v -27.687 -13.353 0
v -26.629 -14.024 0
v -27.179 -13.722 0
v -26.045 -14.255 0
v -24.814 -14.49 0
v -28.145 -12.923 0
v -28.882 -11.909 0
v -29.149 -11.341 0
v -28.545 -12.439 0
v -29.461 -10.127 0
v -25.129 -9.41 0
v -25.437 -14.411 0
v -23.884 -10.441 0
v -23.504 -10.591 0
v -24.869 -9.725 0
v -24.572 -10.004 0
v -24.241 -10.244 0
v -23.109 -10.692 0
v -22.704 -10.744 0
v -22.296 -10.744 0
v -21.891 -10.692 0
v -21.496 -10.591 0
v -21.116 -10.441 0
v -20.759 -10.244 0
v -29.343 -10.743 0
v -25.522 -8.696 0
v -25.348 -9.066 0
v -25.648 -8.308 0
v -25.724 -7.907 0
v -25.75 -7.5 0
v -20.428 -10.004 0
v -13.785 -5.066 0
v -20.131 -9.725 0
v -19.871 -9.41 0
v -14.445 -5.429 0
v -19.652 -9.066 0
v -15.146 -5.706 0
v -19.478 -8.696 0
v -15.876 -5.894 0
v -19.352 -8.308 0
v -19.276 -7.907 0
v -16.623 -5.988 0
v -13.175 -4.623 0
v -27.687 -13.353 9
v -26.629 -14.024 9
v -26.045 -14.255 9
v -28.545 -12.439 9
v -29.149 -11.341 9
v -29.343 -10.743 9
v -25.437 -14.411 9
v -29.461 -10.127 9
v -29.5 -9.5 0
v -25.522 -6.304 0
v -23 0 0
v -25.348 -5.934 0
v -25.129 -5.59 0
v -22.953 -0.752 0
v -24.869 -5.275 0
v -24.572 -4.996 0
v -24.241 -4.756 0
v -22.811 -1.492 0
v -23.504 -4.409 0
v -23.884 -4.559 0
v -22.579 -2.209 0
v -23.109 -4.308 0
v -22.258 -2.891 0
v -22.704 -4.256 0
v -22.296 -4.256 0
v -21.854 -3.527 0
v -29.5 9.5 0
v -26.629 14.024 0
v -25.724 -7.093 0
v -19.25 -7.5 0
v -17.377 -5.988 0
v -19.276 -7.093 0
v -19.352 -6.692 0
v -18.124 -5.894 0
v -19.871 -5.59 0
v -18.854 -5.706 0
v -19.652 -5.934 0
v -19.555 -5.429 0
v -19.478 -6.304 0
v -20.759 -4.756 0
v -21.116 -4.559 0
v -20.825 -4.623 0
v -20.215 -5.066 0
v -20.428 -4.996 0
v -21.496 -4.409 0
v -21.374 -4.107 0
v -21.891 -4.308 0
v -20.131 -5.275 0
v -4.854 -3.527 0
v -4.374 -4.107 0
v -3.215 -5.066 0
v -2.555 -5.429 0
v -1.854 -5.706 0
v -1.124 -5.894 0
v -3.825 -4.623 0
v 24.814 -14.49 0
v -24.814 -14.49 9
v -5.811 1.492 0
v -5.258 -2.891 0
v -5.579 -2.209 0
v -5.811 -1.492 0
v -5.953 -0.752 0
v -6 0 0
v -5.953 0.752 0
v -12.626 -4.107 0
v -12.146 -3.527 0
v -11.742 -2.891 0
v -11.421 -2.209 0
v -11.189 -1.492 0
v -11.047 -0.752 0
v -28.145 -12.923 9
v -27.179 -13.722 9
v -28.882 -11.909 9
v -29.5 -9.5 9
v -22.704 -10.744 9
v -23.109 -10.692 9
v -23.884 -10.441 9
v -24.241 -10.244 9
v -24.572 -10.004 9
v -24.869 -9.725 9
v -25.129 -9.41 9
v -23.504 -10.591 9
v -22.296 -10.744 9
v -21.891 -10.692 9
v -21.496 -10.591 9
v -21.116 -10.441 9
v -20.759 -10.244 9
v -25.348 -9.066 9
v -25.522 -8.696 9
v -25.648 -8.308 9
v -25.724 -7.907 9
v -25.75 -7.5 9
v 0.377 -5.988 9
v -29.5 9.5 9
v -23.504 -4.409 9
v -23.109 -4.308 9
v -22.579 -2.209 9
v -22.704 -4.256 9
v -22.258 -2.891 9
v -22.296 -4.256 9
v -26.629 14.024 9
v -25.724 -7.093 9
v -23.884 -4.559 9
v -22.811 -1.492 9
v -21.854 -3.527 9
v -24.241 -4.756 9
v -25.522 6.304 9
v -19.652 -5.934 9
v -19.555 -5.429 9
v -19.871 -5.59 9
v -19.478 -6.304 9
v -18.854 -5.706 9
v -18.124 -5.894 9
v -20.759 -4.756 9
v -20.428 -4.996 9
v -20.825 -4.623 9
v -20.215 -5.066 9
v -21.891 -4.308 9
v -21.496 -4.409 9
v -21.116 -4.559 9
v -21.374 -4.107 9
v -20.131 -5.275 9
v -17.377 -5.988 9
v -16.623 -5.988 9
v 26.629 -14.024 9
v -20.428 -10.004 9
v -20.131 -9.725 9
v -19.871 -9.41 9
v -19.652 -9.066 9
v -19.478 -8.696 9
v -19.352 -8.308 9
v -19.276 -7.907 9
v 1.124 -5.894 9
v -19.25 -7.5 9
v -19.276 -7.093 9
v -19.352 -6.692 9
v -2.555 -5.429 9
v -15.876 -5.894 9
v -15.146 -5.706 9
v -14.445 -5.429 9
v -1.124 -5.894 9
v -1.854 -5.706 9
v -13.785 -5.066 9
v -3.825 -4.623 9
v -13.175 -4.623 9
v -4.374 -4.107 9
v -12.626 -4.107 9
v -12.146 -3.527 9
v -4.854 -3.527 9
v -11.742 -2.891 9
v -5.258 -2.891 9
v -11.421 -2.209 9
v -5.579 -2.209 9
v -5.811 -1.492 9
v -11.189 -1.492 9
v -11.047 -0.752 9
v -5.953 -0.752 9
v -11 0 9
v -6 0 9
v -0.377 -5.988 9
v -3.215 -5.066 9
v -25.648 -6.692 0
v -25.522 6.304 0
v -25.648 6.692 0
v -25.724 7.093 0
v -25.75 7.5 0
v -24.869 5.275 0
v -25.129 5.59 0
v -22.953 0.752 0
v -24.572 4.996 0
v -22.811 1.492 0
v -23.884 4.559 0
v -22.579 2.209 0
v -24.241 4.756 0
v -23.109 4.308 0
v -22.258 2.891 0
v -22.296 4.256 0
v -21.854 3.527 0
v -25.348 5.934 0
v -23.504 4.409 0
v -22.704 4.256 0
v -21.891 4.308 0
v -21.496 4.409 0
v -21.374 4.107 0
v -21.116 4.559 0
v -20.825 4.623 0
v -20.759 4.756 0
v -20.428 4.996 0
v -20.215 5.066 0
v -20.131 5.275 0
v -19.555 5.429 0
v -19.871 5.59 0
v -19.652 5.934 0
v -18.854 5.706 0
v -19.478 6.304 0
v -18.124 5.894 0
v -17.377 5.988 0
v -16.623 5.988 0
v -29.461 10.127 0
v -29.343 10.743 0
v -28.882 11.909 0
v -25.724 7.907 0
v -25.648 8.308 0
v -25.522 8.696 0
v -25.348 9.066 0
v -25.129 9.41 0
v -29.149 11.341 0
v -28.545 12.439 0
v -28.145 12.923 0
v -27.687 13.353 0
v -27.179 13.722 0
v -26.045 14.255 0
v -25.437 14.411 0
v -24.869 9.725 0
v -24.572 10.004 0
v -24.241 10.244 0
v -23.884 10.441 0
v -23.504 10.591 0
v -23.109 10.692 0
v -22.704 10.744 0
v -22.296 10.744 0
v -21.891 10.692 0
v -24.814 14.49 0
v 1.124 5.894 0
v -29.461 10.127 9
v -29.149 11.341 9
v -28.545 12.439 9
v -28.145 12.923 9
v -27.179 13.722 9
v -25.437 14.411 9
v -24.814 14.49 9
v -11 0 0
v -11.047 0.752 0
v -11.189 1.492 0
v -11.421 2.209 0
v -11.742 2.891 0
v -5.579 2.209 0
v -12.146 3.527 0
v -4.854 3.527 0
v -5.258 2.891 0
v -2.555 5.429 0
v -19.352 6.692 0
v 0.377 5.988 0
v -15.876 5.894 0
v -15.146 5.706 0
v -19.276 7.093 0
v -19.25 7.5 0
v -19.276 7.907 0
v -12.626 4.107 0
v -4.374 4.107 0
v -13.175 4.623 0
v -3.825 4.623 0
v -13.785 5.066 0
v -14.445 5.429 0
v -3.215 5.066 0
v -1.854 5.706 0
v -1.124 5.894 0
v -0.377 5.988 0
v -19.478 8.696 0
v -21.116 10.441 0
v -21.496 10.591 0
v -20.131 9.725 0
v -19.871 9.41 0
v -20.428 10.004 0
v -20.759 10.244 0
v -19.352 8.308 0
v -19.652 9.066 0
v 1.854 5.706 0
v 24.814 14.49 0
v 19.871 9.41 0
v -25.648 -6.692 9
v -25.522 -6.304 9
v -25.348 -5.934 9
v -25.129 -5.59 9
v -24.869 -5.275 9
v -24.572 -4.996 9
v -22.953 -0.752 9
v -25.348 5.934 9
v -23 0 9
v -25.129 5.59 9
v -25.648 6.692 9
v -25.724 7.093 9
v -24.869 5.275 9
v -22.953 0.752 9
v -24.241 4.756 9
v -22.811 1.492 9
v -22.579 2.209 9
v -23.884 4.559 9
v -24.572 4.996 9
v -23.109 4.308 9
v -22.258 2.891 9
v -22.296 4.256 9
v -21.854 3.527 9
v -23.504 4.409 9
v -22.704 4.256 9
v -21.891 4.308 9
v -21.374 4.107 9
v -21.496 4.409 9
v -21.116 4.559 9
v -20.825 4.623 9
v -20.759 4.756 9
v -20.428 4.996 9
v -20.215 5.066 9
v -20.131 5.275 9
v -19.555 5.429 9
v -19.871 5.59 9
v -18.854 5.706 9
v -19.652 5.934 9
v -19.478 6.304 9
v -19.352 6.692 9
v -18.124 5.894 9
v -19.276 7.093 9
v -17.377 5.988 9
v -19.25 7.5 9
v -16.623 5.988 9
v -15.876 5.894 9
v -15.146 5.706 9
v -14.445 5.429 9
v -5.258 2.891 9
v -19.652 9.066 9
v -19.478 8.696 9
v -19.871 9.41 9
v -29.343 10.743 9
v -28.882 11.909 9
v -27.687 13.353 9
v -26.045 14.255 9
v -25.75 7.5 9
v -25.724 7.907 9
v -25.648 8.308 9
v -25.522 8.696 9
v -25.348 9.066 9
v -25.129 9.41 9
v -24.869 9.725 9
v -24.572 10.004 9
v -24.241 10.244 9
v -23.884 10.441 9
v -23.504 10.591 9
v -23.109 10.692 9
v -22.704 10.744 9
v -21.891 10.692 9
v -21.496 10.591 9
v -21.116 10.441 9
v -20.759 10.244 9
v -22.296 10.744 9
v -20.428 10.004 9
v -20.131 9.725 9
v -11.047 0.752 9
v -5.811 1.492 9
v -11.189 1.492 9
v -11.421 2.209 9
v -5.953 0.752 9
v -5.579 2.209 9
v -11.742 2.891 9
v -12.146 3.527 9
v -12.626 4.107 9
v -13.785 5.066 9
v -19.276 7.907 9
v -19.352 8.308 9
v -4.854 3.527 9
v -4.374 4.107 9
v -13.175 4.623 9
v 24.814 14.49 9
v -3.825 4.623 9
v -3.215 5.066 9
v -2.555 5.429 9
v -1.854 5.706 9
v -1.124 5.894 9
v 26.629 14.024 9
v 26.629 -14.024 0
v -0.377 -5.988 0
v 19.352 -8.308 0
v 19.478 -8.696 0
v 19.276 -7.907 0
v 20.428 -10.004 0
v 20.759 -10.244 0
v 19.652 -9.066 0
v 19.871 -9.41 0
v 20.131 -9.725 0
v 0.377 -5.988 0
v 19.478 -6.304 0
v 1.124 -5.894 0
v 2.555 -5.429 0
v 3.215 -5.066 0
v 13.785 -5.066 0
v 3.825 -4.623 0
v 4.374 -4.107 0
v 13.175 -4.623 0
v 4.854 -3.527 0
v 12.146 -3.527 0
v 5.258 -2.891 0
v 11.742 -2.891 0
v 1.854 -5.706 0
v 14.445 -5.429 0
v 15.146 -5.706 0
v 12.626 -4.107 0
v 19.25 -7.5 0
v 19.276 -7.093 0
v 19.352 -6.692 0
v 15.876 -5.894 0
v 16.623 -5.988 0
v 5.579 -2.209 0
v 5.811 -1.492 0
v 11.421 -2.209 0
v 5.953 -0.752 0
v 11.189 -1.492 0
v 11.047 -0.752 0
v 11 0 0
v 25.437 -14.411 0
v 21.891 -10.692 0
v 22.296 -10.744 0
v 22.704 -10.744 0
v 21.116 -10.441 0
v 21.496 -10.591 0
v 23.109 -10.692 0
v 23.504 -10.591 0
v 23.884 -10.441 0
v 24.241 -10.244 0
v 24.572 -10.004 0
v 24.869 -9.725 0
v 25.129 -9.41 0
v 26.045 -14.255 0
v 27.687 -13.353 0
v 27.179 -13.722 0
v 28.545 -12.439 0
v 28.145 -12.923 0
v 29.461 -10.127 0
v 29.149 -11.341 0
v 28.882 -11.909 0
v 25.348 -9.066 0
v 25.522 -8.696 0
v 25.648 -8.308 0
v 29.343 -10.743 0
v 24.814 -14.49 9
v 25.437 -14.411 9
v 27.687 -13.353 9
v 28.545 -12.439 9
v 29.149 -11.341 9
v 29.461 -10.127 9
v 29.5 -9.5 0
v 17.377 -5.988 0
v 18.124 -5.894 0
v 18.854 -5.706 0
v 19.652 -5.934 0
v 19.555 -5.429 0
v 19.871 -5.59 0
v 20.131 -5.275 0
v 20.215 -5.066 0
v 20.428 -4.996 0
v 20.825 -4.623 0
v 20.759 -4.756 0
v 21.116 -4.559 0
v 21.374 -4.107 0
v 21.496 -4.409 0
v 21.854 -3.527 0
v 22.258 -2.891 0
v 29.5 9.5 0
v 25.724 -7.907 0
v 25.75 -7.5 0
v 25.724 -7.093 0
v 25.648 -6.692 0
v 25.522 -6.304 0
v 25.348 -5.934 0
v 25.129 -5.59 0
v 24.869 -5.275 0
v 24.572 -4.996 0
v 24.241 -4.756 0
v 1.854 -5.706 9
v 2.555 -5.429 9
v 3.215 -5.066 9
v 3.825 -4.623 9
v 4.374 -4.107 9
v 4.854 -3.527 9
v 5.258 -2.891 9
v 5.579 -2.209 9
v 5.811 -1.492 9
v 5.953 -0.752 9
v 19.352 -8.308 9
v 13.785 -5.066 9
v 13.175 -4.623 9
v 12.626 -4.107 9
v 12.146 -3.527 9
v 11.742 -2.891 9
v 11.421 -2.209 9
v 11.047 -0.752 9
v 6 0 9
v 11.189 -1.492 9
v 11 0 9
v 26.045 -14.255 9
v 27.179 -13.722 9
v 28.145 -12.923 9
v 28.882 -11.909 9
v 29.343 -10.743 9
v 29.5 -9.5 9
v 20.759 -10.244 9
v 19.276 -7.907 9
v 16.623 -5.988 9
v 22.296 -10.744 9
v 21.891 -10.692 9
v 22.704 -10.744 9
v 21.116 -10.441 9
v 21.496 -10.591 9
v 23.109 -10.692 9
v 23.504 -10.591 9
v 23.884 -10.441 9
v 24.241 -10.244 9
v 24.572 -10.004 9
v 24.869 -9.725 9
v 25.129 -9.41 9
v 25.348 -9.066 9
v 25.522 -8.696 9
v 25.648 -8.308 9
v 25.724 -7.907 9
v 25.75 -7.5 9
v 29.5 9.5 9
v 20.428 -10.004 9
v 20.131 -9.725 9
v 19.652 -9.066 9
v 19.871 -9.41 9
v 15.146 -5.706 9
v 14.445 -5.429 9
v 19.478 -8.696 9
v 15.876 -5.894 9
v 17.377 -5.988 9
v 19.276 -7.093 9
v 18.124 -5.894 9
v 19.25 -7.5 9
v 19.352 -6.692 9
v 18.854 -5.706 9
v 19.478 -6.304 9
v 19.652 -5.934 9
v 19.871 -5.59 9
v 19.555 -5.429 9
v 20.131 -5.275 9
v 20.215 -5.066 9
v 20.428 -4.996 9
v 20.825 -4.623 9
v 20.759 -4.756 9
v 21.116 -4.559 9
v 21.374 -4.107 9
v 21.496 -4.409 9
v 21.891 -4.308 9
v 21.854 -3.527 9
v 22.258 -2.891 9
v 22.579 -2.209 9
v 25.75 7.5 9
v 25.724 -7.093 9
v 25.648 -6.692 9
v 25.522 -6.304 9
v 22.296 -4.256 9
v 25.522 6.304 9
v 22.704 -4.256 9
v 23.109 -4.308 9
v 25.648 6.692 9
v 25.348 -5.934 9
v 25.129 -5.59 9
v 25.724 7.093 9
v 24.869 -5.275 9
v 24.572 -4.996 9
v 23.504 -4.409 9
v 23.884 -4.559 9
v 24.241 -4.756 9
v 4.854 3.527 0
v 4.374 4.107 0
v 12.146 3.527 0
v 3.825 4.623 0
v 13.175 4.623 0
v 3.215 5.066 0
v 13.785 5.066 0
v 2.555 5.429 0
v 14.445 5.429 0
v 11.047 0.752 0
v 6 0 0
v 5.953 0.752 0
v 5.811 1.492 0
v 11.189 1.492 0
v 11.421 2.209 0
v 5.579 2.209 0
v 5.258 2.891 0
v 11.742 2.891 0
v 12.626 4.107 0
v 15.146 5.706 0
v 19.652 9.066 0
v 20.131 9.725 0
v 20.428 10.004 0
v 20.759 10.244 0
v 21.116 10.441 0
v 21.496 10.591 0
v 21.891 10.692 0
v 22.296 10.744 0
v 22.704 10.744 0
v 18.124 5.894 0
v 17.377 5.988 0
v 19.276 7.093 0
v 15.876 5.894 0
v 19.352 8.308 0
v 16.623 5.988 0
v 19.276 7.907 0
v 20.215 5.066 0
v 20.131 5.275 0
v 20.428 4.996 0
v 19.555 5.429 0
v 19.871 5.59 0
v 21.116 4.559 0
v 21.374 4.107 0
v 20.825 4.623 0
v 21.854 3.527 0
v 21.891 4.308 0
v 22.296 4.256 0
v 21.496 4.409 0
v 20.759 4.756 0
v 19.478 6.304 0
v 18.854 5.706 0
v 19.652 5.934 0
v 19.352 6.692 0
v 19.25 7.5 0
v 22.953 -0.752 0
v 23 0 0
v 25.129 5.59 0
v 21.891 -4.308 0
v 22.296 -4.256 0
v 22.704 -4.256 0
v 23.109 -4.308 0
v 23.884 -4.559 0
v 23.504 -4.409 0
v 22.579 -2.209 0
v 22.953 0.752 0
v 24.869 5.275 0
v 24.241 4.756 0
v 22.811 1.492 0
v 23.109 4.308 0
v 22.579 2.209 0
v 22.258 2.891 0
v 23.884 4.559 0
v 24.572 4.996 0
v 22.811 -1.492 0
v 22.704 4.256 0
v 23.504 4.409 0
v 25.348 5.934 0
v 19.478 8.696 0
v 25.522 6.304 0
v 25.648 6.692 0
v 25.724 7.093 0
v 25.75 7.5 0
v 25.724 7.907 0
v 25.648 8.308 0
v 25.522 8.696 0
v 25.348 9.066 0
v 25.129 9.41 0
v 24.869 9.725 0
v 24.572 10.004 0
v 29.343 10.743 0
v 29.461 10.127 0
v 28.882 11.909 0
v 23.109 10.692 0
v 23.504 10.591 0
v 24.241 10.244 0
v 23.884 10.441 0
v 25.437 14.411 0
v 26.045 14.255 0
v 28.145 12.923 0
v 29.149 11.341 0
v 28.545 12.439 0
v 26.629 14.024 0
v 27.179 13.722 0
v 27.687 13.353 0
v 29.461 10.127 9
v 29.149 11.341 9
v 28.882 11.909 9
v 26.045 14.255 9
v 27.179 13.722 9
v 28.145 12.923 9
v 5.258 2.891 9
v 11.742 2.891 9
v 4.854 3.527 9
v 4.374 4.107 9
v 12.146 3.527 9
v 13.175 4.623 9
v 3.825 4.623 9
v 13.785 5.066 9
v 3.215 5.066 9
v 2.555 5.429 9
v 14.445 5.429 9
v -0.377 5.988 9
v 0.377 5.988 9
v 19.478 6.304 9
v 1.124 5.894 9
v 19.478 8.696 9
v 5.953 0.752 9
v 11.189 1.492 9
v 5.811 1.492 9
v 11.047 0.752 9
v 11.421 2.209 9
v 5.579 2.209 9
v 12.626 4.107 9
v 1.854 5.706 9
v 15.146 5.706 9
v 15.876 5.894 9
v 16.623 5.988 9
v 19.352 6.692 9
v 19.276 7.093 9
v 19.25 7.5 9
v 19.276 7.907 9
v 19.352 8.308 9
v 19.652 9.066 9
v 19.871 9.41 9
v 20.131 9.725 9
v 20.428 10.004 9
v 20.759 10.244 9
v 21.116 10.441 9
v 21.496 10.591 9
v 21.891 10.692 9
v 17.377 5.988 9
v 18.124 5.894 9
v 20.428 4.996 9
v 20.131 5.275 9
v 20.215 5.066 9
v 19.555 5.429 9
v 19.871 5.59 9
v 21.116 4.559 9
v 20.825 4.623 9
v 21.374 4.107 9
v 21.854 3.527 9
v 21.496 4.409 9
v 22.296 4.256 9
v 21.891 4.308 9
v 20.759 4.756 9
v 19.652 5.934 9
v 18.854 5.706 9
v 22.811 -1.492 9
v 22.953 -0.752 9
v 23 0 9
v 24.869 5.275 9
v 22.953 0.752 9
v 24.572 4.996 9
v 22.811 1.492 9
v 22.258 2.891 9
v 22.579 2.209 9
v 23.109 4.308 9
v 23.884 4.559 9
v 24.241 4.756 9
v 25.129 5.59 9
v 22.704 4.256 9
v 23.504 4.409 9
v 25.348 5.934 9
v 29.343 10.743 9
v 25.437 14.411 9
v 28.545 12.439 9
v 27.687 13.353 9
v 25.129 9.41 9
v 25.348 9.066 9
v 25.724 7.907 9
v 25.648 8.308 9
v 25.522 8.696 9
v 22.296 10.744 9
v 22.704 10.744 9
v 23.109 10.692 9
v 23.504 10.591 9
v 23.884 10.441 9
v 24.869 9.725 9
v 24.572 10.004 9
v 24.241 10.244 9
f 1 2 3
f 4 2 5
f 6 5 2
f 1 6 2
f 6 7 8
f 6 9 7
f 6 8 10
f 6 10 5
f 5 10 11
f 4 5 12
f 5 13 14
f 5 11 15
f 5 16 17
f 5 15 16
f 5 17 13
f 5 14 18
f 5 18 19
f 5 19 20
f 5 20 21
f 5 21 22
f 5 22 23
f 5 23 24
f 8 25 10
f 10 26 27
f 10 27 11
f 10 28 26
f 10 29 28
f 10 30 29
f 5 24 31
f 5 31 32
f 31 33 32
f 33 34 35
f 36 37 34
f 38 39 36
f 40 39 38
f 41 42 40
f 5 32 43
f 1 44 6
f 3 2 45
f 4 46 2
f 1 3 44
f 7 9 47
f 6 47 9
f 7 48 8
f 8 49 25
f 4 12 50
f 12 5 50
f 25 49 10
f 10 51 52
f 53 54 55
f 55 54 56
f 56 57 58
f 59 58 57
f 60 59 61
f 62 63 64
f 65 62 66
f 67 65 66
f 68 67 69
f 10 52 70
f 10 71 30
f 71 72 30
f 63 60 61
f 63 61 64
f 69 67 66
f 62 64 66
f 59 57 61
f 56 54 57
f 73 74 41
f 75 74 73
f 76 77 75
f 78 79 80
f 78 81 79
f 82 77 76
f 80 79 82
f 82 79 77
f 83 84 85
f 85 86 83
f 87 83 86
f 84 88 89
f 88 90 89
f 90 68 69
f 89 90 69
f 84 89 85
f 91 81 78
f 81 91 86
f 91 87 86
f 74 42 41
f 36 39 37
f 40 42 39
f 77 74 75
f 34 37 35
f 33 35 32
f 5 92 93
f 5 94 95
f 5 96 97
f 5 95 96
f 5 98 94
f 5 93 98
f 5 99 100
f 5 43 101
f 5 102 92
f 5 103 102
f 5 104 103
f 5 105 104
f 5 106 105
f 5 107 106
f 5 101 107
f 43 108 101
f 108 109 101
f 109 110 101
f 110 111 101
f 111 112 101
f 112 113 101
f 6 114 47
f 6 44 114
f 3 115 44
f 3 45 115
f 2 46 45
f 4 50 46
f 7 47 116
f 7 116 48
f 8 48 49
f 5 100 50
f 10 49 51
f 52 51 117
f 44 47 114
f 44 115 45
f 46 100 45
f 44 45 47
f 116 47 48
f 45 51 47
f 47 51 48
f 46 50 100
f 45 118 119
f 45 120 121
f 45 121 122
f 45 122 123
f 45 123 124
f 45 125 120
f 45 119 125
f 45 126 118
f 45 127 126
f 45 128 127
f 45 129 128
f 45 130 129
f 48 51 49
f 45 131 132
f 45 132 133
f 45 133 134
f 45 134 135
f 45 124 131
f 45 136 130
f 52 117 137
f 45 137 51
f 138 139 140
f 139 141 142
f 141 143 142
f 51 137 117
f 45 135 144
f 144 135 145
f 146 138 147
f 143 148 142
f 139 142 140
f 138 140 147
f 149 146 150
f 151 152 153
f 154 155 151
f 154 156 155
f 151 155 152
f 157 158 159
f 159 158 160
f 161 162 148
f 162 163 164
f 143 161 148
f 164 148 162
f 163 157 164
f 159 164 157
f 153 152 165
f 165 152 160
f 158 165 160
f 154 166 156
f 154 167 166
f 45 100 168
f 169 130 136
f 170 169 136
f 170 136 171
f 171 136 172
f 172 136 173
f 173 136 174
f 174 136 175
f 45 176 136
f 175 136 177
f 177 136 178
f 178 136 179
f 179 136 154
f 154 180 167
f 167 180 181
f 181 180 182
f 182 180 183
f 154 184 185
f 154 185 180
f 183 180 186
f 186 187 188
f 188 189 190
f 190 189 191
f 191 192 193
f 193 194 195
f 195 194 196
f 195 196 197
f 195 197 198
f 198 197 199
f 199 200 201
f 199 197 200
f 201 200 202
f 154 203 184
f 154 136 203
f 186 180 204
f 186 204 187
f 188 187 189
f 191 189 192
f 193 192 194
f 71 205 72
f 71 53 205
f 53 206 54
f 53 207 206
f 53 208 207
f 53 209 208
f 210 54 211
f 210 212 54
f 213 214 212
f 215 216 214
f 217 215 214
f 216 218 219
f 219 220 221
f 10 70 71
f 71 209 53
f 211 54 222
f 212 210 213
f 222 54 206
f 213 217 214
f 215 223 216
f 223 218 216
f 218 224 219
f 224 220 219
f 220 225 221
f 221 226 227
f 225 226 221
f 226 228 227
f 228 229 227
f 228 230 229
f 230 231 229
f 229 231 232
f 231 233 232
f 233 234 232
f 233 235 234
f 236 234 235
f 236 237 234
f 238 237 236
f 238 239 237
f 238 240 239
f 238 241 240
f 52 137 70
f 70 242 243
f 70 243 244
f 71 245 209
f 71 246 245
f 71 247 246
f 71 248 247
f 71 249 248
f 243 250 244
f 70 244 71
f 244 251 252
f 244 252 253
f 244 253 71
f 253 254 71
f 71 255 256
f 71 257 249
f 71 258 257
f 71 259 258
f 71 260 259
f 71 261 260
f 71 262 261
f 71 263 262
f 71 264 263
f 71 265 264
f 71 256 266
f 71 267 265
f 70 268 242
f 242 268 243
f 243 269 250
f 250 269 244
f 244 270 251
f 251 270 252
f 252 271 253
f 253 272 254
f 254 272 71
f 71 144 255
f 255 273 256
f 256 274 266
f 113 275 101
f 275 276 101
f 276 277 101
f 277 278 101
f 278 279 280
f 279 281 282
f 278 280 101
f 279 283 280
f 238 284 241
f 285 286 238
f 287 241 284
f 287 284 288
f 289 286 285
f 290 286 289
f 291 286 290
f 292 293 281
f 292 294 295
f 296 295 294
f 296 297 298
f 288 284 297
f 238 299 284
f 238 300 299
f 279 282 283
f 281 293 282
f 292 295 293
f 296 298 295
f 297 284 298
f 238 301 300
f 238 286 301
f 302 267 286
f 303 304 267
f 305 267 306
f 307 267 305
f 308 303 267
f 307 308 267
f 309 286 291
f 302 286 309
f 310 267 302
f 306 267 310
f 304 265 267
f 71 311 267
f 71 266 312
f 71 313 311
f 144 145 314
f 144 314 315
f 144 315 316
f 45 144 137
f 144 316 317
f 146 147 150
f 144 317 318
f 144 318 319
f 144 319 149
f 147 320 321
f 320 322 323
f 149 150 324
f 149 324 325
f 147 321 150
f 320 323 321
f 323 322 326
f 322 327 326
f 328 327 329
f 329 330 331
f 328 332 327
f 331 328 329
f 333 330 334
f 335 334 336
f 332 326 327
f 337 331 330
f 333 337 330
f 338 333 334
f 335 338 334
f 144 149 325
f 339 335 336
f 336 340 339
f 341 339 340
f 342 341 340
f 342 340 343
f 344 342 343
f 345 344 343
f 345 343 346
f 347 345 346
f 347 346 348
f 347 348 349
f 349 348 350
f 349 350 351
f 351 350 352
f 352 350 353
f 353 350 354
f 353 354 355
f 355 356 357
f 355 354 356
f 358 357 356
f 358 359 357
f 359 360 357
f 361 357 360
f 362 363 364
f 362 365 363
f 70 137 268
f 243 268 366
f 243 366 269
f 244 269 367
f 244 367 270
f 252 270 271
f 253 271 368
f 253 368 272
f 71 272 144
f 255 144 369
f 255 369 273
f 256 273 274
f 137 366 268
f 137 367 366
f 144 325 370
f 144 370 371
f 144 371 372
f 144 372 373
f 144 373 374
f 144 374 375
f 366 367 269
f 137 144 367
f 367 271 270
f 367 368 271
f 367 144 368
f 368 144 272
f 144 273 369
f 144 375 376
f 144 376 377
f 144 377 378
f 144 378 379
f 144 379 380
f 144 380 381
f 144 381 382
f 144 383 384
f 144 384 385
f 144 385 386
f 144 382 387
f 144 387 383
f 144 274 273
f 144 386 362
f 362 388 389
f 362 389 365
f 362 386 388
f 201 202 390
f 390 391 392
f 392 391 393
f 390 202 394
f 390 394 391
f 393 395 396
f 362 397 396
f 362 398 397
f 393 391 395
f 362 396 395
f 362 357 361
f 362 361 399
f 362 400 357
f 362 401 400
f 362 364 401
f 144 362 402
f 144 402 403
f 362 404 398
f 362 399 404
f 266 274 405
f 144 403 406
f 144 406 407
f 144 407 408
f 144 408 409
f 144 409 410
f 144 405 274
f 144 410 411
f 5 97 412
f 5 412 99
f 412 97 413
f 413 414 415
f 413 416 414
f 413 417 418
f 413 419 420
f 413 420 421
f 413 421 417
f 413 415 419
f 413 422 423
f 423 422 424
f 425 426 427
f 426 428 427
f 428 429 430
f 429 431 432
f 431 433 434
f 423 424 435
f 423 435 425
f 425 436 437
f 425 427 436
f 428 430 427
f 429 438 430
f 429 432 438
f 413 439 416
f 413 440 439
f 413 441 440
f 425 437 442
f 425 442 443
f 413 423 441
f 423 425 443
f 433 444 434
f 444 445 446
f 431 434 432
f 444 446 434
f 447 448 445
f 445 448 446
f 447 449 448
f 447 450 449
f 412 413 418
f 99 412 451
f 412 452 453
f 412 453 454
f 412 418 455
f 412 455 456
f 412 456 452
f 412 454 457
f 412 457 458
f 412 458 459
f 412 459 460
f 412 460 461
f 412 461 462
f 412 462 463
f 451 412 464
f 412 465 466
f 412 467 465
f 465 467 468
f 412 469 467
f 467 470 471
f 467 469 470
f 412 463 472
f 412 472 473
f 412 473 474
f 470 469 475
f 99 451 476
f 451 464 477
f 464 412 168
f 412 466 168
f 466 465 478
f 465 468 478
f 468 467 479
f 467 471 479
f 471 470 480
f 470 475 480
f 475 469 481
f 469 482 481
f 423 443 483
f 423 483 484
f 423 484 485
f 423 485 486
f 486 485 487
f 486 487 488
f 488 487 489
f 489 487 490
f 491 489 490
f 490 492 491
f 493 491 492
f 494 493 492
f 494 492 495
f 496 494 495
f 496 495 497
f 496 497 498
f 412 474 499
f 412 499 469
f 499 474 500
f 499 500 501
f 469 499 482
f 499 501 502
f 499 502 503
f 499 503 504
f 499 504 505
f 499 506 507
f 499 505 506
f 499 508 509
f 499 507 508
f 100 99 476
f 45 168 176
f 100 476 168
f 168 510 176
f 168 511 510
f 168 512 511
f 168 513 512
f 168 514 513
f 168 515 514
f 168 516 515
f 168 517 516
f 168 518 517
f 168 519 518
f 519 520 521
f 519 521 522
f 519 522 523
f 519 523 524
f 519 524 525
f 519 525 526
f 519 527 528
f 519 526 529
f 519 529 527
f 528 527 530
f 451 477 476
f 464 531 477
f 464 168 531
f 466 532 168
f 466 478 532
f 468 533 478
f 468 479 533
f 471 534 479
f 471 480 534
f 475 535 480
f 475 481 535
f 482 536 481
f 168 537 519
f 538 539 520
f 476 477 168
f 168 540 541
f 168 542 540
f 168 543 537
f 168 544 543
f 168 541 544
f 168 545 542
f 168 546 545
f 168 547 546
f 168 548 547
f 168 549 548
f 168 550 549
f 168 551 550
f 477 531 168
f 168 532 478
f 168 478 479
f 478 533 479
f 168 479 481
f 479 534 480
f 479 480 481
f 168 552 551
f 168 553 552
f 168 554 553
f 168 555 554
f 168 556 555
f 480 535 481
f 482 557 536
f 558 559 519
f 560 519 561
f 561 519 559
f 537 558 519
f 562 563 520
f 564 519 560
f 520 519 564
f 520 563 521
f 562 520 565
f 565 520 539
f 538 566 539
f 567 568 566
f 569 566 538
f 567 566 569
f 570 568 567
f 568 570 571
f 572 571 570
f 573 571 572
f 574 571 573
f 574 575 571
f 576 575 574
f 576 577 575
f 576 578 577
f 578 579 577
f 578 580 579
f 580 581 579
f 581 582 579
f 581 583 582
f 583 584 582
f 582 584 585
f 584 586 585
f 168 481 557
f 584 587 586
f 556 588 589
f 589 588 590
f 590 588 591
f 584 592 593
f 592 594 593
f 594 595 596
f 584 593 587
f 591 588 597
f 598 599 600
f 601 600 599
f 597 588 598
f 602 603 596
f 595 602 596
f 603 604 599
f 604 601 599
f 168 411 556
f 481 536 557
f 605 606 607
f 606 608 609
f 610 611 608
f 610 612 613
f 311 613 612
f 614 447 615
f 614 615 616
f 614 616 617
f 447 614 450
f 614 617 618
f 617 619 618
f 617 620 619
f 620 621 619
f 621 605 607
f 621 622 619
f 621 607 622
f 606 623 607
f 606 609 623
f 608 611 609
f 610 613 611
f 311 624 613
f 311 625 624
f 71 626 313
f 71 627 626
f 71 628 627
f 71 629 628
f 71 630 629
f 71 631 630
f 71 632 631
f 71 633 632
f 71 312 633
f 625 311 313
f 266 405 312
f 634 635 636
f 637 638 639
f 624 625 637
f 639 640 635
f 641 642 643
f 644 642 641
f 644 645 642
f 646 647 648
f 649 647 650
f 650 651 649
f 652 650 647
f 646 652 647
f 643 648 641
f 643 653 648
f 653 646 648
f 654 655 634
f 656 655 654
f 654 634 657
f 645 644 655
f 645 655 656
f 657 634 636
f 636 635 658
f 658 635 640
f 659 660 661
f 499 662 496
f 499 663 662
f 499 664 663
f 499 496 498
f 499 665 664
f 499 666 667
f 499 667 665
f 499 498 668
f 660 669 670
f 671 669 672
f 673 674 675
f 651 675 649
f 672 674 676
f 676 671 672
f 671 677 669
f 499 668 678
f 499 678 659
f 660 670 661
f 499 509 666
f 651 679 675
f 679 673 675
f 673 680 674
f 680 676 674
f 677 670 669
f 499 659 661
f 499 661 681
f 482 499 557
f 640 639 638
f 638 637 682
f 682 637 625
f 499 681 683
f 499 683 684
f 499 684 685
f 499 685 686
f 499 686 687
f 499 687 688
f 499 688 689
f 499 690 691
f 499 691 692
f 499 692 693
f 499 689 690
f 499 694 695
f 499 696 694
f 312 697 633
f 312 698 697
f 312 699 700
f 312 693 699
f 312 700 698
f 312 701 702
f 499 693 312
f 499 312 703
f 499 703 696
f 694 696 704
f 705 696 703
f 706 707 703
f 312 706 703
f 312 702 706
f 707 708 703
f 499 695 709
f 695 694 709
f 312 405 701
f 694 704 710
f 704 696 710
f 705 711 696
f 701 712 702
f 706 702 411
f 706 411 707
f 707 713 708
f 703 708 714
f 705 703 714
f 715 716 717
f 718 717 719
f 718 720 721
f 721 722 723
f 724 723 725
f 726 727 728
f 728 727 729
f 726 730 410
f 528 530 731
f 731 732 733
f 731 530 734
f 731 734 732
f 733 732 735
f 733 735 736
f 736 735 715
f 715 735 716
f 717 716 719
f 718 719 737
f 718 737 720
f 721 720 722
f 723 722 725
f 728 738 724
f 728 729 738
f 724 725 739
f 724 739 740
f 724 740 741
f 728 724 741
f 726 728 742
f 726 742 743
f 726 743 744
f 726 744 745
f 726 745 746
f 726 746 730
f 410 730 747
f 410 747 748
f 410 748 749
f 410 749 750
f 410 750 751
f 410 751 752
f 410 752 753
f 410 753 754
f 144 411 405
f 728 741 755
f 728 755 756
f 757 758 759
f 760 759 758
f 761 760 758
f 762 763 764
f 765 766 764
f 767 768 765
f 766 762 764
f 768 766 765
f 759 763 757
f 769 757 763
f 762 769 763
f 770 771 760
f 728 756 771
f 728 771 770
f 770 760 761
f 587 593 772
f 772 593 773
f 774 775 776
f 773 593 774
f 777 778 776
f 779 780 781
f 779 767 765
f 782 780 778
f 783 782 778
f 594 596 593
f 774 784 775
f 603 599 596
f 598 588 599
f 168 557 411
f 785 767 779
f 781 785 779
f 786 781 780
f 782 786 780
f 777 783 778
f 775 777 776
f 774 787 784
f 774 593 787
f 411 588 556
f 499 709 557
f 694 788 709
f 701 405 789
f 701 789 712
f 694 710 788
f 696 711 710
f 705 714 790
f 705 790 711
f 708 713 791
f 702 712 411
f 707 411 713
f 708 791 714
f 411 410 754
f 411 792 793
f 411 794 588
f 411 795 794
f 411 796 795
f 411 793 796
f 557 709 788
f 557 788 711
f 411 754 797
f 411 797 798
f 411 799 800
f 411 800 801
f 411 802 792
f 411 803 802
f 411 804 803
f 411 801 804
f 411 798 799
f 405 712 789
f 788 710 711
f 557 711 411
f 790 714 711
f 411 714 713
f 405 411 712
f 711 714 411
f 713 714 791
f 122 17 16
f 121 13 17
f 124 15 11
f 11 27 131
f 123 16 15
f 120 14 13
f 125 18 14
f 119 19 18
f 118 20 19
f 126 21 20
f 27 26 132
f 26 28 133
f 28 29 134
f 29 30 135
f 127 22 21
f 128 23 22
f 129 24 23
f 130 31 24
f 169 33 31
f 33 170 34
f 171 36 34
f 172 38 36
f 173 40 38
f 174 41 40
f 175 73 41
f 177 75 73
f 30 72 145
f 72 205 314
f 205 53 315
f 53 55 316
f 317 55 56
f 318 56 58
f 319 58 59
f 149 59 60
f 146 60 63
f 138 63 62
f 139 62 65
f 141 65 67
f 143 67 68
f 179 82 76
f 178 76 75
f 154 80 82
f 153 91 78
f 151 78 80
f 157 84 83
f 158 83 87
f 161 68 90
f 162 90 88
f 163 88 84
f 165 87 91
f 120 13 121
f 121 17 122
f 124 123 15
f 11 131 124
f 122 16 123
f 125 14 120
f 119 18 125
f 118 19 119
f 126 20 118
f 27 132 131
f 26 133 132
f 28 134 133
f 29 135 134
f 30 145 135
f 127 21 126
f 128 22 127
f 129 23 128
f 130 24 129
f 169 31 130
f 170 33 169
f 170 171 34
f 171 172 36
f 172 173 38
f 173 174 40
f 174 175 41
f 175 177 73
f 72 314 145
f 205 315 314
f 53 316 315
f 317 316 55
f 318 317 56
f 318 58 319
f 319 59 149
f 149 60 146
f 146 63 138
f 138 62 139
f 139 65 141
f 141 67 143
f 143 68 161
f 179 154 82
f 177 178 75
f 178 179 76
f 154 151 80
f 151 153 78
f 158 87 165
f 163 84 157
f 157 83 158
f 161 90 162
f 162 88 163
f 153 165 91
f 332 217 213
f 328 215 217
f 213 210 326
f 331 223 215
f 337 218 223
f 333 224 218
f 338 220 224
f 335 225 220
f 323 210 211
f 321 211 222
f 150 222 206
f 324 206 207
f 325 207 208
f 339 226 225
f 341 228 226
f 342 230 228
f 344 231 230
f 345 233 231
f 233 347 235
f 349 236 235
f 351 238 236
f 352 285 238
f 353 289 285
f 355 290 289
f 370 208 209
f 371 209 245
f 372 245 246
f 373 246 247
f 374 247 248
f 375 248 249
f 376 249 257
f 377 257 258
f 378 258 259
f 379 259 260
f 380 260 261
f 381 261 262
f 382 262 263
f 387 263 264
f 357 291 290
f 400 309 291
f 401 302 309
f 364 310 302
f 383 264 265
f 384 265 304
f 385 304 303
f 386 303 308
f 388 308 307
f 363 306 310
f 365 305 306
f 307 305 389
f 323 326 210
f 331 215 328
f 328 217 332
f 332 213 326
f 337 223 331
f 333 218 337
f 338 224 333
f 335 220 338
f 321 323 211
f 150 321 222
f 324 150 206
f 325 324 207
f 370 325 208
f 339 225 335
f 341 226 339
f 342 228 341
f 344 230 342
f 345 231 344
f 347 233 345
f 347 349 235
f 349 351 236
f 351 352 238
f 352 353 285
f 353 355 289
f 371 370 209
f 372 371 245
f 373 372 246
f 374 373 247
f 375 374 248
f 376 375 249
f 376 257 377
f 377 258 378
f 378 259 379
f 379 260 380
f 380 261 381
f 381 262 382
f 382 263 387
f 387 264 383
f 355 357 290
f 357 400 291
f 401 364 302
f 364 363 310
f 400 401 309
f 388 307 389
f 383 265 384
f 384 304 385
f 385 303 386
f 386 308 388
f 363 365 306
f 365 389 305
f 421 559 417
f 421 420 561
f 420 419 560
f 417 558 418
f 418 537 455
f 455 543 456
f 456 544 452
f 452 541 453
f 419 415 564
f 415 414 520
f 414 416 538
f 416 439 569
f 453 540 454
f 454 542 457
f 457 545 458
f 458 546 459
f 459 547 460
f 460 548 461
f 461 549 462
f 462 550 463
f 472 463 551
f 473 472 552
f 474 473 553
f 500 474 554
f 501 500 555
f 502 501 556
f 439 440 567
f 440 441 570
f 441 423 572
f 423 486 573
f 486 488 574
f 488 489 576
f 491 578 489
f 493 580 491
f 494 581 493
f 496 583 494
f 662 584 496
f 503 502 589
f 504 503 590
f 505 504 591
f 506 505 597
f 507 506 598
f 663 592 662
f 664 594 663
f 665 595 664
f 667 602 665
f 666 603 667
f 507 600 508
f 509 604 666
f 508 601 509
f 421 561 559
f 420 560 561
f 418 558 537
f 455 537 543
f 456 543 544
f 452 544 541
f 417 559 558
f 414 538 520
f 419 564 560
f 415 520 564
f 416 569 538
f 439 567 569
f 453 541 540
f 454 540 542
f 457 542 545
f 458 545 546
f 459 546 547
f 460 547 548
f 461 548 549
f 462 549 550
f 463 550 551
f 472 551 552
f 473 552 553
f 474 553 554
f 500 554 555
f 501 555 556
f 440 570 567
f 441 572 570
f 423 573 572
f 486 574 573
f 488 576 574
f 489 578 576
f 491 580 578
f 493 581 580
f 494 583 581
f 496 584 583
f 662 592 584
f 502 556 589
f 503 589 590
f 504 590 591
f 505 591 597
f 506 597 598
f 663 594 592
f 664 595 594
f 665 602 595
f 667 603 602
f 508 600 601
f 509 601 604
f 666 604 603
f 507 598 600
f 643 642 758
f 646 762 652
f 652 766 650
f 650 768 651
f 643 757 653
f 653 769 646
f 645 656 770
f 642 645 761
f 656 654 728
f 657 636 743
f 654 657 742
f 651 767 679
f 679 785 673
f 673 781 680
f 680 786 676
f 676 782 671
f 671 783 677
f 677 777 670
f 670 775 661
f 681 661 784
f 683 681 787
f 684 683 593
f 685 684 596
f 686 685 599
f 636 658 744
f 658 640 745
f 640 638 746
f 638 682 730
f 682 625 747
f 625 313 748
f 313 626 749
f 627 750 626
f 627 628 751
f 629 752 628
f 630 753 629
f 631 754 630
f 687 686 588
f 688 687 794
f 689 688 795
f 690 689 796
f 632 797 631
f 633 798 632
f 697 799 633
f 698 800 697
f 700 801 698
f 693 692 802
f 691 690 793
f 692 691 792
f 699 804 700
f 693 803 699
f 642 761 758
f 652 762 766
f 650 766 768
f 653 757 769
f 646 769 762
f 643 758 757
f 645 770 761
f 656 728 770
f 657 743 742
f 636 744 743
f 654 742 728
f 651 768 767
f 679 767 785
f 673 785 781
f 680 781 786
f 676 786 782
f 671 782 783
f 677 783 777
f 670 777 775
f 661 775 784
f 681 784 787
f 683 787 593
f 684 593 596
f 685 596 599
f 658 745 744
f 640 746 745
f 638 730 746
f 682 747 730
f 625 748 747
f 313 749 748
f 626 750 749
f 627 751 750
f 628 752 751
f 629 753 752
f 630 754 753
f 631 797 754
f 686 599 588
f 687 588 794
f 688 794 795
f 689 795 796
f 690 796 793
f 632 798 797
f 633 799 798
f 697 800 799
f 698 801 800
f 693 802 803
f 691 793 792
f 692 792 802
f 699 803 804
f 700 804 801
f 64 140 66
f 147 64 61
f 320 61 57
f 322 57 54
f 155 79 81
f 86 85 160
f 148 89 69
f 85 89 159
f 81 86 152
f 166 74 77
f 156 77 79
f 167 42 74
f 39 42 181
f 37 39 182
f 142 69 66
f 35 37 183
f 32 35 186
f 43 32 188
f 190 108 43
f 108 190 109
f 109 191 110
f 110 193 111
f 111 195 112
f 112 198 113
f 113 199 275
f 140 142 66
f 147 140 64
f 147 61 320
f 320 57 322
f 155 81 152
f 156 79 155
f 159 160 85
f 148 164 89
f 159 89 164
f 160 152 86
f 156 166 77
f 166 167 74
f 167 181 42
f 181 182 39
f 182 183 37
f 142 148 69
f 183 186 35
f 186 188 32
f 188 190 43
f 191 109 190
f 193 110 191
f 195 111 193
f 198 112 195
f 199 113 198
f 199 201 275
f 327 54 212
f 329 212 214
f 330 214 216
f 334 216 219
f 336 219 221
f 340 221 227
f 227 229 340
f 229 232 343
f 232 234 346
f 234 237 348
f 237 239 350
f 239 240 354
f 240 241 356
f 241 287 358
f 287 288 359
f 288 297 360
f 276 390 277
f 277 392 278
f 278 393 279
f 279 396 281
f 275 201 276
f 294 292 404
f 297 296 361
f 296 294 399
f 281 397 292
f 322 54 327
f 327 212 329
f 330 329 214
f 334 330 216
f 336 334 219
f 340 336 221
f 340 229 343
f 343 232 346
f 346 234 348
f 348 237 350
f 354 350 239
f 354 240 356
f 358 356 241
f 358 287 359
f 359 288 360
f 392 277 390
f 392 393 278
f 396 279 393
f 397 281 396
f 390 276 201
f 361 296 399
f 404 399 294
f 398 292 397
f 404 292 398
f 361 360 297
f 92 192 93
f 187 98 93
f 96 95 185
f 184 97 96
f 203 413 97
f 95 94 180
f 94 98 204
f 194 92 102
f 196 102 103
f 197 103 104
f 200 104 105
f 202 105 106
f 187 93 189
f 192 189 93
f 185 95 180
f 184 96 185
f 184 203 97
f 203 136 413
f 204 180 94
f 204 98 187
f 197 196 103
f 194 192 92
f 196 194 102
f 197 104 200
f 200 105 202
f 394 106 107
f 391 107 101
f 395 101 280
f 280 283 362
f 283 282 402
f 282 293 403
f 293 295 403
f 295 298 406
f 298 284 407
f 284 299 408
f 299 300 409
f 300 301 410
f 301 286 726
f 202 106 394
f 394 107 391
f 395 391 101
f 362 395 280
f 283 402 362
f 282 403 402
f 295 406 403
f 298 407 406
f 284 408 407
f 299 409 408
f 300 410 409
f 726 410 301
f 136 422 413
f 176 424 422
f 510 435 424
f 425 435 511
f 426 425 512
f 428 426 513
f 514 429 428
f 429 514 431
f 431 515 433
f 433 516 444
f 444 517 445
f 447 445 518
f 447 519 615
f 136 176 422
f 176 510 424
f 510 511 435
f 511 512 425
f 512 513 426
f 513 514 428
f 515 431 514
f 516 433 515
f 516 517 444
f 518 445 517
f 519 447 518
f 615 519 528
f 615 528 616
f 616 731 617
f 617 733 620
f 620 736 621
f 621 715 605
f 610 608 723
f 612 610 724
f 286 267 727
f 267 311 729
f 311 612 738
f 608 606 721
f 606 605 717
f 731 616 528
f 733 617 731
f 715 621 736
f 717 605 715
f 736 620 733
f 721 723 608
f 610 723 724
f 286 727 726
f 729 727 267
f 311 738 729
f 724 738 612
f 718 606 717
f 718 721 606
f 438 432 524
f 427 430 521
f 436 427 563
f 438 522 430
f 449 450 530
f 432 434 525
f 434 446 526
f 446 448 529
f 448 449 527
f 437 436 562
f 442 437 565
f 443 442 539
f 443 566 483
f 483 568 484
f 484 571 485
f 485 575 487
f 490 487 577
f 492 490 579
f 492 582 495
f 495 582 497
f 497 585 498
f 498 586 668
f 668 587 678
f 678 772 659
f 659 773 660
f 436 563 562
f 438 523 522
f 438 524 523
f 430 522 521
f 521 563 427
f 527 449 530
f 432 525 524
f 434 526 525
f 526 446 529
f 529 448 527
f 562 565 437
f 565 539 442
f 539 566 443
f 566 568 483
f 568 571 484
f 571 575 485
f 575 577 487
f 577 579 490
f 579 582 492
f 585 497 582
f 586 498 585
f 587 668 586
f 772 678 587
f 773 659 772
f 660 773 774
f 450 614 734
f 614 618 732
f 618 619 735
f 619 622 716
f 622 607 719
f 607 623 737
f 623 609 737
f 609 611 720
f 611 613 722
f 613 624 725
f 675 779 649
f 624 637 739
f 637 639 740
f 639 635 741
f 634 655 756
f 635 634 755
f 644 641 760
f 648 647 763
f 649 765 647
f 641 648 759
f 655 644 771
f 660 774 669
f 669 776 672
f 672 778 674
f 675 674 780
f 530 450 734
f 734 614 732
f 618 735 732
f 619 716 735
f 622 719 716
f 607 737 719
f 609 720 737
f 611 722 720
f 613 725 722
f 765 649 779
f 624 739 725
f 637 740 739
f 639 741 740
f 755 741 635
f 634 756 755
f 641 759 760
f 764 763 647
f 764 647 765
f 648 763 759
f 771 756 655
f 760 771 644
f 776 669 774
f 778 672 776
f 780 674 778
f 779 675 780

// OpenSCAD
$fn = 50;

difference() {
	union() {
		hull() {
			translate(v = [-24.5, 9.5, 0]) {
				cylinder(h = 9, r = 5);
			}
			translate(v = [24.5, 9.5, 0]) {
				cylinder(h = 9, r = 5);
			}
			translate(v = [-24.5, -9.5, 0]) {
				cylinder(h = 9, r = 5);
			}
			translate(v = [24.5, -9.5, 0]) {
				cylinder(h = 9, r = 5);
			}
		}
	}
	union() {
		translate(v = [-22.5, -7.5, -100.0]) {
			cylinder(h = 200, r = 3.25);
		}
		translate(v = [-22.5, 7.5, -100.0]) {
			cylinder(h = 200, r = 3.25);
		}
		translate(v = [22.5, -7.5, -100.0]) {
			cylinder(h = 200, r = 3.25);
		}
		translate(v = [22.5, 7.5, -100.0]) {
			cylinder(h = 200, r = 3.25);
		}
		translate(v = [-22.5, -7.5, -100.0]) {
			cylinder(h = 200, r = 1.8);
		}
		translate(v = [-22.5, 7.5, -100.0]) {
			cylinder(h = 200, r = 1.8);
		}
		translate(v = [22.5, -7.5, -100.0]) {
			cylinder(h = 200, r = 1.8);
		}
		translate(v = [22.5, 7.5, -100.0]) {
			cylinder(h = 200, r = 1.8);
		}
		translate(v = [-17.0, 0, 0.0]) {
			cylinder(h = 9, r = 6.0);
		}
		cylinder(h = 9, r = 6.0);
		translate(v = [17.0, 0, 0.0]) {
			cylinder(h = 9, r = 6.0);
		}
	}
}
